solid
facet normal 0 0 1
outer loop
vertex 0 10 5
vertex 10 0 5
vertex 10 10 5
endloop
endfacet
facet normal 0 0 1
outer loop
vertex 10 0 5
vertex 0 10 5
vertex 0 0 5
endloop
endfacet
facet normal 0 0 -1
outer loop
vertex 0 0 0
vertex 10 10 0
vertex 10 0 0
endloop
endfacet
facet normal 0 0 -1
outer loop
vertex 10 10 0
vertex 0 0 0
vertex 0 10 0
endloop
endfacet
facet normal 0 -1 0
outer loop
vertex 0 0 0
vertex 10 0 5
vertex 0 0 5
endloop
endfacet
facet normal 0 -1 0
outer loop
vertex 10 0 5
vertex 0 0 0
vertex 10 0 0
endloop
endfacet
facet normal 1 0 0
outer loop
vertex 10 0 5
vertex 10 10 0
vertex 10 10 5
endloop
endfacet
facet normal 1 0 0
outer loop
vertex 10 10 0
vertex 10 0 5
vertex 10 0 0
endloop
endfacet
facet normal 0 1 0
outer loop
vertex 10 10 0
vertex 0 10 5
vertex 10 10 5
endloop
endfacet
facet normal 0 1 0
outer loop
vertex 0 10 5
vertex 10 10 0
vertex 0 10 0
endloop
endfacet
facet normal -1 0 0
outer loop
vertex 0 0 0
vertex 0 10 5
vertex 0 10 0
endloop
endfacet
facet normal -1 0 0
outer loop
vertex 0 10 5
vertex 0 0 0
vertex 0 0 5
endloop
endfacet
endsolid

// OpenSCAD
// Mixing a 2D child into a 3D union warns and drops the 2D child.
union() { cube([10, 10, 5]); square(4); }
